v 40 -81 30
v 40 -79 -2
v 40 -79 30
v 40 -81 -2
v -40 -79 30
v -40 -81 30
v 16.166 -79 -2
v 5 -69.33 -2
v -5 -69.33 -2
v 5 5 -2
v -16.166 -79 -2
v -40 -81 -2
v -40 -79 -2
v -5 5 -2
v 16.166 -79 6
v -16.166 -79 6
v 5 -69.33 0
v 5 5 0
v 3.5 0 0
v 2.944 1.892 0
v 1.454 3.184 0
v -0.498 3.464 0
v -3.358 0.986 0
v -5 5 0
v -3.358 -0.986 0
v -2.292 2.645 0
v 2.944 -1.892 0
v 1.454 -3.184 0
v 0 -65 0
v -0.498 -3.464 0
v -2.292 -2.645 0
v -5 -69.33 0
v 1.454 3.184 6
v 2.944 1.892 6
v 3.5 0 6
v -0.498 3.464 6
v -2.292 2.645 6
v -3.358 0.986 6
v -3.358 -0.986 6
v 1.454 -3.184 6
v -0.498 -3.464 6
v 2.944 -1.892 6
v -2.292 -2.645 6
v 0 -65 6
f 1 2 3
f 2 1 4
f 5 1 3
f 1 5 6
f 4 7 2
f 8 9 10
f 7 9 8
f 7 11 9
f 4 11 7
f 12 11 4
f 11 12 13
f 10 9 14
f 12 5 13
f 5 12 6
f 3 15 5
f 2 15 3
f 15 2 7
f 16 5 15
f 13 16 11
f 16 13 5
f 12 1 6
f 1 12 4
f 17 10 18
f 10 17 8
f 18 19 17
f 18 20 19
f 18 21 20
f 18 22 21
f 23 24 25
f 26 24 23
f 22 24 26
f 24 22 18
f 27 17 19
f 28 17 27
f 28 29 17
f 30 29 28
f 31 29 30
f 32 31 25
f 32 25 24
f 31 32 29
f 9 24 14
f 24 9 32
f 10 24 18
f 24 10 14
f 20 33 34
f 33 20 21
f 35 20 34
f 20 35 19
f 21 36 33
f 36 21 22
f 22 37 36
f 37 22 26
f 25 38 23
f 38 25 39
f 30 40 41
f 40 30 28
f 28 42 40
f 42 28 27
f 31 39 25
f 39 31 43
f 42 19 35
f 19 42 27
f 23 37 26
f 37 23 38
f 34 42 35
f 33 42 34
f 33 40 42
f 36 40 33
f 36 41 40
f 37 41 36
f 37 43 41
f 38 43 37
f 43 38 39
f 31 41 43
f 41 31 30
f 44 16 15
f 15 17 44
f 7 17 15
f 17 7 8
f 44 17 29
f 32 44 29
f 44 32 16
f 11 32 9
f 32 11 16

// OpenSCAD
base_length = 32;
translate([0,-80, base_length/2-2])
cube([80, 2, base_length], center = true);

len = 42;
translate([0,-len+5,-1])
cube([10, len*2, 2], center = true);
cylinder(h= 6, r = 3.5, center = false);



tri_rad = 10;
scale([2, 1, 1])
translate([0,-80+tri_rad/2, -2])
rotate([0,0,90])
linear_extrude(8){
    polygon([for(i = [1:1:3]) [tri_rad*cos(i*360/3), tri_rad*sin(i*360/3)]]);
}
